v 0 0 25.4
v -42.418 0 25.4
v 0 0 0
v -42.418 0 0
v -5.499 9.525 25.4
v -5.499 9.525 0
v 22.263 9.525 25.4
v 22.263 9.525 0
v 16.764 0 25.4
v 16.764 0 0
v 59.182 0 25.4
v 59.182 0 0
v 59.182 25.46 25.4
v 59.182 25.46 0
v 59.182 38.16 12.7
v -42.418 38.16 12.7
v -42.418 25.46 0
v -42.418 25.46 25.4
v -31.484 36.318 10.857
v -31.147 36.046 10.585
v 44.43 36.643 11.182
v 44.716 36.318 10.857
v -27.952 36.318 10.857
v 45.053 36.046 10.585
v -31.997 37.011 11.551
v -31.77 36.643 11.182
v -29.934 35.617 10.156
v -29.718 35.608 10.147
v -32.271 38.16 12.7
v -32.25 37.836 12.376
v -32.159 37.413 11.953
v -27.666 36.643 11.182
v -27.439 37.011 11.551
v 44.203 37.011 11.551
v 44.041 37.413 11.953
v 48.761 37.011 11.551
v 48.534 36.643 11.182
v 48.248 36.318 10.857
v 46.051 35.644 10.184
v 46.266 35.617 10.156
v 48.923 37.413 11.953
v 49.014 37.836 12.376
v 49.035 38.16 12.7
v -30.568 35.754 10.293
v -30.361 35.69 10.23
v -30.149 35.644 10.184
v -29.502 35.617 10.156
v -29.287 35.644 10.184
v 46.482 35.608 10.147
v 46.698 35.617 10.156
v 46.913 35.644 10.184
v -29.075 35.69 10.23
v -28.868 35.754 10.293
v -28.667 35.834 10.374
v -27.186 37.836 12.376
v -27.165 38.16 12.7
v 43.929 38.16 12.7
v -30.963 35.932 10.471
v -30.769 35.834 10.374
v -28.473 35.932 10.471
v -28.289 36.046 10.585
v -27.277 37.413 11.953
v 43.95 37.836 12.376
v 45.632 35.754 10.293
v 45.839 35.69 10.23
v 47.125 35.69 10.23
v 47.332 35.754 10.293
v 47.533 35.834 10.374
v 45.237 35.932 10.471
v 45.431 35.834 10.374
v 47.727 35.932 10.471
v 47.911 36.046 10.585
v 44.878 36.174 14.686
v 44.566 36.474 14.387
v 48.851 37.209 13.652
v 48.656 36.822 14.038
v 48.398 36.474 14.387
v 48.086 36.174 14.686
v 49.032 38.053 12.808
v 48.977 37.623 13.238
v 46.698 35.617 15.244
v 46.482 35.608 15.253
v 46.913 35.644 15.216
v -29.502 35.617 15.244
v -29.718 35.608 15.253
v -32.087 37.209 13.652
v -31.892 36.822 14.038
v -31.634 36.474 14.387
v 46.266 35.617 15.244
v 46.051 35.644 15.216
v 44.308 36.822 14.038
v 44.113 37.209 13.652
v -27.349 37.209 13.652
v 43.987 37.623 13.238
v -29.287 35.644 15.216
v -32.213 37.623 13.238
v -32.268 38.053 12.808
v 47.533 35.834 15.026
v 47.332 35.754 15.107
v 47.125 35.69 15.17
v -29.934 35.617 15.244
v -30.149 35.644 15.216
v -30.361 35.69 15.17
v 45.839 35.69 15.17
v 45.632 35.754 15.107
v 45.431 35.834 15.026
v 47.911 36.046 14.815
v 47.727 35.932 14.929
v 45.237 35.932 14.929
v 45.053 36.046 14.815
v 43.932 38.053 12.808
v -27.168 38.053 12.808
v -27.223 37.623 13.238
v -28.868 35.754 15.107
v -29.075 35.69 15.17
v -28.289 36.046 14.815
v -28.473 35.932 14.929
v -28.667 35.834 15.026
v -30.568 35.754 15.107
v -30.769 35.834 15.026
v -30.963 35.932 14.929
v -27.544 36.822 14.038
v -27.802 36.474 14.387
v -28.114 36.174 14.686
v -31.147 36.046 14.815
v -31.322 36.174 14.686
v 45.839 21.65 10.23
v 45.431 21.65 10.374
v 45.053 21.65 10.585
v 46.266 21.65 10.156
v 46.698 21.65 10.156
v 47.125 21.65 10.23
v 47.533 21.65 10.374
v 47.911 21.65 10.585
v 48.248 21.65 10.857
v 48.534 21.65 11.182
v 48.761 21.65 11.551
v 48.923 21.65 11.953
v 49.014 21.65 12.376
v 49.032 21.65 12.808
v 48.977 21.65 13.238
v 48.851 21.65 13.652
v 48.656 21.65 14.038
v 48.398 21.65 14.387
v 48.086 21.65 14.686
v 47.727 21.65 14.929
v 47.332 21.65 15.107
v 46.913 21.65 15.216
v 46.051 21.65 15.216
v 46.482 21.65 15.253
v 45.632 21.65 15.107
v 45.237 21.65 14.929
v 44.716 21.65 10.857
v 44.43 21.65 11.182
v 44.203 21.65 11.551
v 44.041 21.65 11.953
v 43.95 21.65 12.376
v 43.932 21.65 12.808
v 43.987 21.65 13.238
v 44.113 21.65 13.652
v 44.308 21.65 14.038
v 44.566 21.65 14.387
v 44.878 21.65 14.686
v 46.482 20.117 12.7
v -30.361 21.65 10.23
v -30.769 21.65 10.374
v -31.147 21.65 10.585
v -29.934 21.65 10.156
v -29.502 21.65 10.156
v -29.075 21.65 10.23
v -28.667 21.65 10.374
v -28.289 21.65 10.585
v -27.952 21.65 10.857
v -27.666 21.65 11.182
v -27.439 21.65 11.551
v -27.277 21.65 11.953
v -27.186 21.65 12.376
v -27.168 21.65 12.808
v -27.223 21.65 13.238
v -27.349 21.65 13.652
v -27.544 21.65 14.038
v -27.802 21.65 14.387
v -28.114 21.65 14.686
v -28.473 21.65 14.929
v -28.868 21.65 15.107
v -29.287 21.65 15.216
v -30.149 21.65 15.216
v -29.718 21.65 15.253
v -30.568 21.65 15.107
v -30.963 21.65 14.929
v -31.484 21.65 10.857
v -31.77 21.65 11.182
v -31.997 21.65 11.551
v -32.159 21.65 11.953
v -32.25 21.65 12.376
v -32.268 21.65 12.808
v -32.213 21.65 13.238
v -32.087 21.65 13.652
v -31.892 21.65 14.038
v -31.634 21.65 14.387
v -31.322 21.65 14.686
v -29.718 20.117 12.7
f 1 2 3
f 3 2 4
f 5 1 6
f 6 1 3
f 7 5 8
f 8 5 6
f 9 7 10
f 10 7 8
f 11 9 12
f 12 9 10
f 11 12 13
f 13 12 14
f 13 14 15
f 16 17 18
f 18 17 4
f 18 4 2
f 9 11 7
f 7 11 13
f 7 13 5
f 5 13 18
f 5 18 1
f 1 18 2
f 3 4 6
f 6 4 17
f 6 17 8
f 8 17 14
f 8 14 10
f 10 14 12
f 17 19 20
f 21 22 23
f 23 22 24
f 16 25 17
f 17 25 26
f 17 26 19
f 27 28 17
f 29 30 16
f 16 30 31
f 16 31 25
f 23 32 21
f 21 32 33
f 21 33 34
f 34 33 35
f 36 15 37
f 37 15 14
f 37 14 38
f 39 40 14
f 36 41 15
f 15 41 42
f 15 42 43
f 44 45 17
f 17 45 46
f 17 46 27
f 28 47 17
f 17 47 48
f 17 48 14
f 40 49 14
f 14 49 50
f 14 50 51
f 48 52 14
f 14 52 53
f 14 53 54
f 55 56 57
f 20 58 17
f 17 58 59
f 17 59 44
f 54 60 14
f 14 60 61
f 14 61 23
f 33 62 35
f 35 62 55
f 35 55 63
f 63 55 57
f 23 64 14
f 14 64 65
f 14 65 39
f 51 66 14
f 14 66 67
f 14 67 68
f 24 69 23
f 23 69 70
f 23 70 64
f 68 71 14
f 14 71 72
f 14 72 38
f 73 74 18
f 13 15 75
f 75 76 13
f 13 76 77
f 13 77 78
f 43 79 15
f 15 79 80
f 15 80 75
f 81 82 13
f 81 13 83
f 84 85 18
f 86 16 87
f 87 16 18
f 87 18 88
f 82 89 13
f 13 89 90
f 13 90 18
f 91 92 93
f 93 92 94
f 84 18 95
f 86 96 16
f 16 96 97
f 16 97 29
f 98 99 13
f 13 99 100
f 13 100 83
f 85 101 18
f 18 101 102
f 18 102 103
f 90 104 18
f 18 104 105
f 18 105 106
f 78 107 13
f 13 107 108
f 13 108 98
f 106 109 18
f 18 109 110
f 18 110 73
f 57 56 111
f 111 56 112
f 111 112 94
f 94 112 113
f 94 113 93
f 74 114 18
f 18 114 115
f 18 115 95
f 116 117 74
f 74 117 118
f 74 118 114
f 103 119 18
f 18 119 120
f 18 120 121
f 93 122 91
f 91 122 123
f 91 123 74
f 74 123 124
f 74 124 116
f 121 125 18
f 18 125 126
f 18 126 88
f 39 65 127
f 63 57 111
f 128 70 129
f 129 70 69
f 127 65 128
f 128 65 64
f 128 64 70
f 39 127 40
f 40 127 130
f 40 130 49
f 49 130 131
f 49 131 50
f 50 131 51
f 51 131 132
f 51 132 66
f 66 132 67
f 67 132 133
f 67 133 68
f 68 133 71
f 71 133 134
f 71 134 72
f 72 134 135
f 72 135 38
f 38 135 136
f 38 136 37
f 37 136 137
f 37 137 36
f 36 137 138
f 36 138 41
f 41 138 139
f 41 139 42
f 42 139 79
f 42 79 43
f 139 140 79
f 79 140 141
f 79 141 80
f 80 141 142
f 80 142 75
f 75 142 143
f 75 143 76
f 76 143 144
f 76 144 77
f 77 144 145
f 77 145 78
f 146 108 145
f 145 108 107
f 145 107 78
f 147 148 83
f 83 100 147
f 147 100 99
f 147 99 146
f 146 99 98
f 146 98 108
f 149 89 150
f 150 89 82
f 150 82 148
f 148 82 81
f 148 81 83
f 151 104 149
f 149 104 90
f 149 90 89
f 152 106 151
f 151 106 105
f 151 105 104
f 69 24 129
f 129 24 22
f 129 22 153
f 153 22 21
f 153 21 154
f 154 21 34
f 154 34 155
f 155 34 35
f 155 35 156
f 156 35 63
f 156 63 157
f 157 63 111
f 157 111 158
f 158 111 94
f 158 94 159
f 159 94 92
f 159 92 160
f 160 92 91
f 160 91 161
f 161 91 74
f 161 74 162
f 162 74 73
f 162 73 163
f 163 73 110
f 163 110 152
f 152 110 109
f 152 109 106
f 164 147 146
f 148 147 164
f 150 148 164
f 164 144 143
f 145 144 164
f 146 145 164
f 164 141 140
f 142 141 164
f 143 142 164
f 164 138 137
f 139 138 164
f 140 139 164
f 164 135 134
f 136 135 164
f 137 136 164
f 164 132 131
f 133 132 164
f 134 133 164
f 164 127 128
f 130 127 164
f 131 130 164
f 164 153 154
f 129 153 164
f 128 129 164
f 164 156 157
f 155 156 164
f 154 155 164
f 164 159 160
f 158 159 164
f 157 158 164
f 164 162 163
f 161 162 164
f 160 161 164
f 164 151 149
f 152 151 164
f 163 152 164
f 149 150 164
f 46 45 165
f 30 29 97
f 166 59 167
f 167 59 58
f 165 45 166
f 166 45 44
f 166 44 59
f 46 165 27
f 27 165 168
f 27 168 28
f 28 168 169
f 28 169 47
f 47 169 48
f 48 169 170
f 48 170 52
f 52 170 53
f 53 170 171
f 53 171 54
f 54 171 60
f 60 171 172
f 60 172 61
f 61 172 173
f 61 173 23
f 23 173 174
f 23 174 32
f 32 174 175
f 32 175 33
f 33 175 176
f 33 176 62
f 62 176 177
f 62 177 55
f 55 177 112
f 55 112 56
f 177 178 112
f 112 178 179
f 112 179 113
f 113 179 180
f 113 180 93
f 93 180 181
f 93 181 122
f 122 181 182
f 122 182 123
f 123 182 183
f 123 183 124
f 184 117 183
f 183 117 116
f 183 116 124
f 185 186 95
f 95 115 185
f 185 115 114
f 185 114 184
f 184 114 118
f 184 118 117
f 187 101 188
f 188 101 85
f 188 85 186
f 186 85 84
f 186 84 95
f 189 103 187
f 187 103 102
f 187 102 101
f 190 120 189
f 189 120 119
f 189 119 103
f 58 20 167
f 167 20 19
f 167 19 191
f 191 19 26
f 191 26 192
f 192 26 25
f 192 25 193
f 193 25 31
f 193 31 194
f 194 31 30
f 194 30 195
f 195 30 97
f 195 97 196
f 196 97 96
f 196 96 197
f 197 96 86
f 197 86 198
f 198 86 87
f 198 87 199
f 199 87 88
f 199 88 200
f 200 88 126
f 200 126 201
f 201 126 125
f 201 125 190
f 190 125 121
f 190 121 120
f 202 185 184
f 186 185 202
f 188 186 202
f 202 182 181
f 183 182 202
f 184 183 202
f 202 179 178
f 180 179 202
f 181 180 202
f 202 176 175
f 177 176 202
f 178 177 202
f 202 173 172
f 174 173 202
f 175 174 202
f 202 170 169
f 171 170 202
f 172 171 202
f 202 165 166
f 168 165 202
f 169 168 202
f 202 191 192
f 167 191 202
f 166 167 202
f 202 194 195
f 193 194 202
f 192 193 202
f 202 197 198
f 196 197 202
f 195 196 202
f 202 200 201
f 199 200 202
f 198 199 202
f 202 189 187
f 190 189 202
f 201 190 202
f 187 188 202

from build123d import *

# Parameters (mm, degrees)
BOSS_EXTRUDE1_DEPTH         = 25.4
CUT_EXTRUDE1_DEPTH          = 112.462737913
F_1_4_20_TAPPED_HOLE1_D     = 5.1054
F_1_4_20_TAPPED_HOLE1_DEPTH = 16.51
F_1_4_20_TAPPED_HOLE1_TIP   = 1.533816902


with BuildPart() as part:
    # Sketch1 → Boss-Extrude1 (new body)
    with BuildSketch(Plane.XY):
        Polygon((0, 0), (-5.499261314, 9.525), (22.263261314, 9.525), (16.764, 0), (59.182, 0), (59.182, 38.16047619), (-42.418, 38.16047619), (-42.418, 0), align=None)
    extrude(amount=BOSS_EXTRUDE1_DEPTH)

    # Sketch2 → Cut-Extrude1 (cut, through all)
    with BuildSketch(Plane.ZY.offset(42.418)):
        Polygon((0, 38.16047619), (0, 25.46047619), (12.7, 38.16047619), align=None)
        Polygon((25.4, 38.16047619), (12.7, 38.16047619), (25.4, 25.46047619), align=None)
    extrude(amount=-CUT_EXTRUDE1_DEPTH, mode=Mode.SUBTRACT)

    # 1/4-20 Tapped Hole1
    with Locations(Plane(origin=(0, 38.16047619, 0), x_dir=(-1, 0, 0), z_dir=(0, 1, 0))):
        with Locations((29.718, 12.7), (-46.482, 12.7)):
            Hole(F_1_4_20_TAPPED_HOLE1_D / 2, depth=F_1_4_20_TAPPED_HOLE1_DEPTH)
            with Locations((0, 0, -(F_1_4_20_TAPPED_HOLE1_DEPTH + F_1_4_20_TAPPED_HOLE1_TIP / 2))):  # 118° drill point
                Cone(0, F_1_4_20_TAPPED_HOLE1_D / 2, F_1_4_20_TAPPED_HOLE1_TIP, mode=Mode.SUBTRACT)


solid = part.part
